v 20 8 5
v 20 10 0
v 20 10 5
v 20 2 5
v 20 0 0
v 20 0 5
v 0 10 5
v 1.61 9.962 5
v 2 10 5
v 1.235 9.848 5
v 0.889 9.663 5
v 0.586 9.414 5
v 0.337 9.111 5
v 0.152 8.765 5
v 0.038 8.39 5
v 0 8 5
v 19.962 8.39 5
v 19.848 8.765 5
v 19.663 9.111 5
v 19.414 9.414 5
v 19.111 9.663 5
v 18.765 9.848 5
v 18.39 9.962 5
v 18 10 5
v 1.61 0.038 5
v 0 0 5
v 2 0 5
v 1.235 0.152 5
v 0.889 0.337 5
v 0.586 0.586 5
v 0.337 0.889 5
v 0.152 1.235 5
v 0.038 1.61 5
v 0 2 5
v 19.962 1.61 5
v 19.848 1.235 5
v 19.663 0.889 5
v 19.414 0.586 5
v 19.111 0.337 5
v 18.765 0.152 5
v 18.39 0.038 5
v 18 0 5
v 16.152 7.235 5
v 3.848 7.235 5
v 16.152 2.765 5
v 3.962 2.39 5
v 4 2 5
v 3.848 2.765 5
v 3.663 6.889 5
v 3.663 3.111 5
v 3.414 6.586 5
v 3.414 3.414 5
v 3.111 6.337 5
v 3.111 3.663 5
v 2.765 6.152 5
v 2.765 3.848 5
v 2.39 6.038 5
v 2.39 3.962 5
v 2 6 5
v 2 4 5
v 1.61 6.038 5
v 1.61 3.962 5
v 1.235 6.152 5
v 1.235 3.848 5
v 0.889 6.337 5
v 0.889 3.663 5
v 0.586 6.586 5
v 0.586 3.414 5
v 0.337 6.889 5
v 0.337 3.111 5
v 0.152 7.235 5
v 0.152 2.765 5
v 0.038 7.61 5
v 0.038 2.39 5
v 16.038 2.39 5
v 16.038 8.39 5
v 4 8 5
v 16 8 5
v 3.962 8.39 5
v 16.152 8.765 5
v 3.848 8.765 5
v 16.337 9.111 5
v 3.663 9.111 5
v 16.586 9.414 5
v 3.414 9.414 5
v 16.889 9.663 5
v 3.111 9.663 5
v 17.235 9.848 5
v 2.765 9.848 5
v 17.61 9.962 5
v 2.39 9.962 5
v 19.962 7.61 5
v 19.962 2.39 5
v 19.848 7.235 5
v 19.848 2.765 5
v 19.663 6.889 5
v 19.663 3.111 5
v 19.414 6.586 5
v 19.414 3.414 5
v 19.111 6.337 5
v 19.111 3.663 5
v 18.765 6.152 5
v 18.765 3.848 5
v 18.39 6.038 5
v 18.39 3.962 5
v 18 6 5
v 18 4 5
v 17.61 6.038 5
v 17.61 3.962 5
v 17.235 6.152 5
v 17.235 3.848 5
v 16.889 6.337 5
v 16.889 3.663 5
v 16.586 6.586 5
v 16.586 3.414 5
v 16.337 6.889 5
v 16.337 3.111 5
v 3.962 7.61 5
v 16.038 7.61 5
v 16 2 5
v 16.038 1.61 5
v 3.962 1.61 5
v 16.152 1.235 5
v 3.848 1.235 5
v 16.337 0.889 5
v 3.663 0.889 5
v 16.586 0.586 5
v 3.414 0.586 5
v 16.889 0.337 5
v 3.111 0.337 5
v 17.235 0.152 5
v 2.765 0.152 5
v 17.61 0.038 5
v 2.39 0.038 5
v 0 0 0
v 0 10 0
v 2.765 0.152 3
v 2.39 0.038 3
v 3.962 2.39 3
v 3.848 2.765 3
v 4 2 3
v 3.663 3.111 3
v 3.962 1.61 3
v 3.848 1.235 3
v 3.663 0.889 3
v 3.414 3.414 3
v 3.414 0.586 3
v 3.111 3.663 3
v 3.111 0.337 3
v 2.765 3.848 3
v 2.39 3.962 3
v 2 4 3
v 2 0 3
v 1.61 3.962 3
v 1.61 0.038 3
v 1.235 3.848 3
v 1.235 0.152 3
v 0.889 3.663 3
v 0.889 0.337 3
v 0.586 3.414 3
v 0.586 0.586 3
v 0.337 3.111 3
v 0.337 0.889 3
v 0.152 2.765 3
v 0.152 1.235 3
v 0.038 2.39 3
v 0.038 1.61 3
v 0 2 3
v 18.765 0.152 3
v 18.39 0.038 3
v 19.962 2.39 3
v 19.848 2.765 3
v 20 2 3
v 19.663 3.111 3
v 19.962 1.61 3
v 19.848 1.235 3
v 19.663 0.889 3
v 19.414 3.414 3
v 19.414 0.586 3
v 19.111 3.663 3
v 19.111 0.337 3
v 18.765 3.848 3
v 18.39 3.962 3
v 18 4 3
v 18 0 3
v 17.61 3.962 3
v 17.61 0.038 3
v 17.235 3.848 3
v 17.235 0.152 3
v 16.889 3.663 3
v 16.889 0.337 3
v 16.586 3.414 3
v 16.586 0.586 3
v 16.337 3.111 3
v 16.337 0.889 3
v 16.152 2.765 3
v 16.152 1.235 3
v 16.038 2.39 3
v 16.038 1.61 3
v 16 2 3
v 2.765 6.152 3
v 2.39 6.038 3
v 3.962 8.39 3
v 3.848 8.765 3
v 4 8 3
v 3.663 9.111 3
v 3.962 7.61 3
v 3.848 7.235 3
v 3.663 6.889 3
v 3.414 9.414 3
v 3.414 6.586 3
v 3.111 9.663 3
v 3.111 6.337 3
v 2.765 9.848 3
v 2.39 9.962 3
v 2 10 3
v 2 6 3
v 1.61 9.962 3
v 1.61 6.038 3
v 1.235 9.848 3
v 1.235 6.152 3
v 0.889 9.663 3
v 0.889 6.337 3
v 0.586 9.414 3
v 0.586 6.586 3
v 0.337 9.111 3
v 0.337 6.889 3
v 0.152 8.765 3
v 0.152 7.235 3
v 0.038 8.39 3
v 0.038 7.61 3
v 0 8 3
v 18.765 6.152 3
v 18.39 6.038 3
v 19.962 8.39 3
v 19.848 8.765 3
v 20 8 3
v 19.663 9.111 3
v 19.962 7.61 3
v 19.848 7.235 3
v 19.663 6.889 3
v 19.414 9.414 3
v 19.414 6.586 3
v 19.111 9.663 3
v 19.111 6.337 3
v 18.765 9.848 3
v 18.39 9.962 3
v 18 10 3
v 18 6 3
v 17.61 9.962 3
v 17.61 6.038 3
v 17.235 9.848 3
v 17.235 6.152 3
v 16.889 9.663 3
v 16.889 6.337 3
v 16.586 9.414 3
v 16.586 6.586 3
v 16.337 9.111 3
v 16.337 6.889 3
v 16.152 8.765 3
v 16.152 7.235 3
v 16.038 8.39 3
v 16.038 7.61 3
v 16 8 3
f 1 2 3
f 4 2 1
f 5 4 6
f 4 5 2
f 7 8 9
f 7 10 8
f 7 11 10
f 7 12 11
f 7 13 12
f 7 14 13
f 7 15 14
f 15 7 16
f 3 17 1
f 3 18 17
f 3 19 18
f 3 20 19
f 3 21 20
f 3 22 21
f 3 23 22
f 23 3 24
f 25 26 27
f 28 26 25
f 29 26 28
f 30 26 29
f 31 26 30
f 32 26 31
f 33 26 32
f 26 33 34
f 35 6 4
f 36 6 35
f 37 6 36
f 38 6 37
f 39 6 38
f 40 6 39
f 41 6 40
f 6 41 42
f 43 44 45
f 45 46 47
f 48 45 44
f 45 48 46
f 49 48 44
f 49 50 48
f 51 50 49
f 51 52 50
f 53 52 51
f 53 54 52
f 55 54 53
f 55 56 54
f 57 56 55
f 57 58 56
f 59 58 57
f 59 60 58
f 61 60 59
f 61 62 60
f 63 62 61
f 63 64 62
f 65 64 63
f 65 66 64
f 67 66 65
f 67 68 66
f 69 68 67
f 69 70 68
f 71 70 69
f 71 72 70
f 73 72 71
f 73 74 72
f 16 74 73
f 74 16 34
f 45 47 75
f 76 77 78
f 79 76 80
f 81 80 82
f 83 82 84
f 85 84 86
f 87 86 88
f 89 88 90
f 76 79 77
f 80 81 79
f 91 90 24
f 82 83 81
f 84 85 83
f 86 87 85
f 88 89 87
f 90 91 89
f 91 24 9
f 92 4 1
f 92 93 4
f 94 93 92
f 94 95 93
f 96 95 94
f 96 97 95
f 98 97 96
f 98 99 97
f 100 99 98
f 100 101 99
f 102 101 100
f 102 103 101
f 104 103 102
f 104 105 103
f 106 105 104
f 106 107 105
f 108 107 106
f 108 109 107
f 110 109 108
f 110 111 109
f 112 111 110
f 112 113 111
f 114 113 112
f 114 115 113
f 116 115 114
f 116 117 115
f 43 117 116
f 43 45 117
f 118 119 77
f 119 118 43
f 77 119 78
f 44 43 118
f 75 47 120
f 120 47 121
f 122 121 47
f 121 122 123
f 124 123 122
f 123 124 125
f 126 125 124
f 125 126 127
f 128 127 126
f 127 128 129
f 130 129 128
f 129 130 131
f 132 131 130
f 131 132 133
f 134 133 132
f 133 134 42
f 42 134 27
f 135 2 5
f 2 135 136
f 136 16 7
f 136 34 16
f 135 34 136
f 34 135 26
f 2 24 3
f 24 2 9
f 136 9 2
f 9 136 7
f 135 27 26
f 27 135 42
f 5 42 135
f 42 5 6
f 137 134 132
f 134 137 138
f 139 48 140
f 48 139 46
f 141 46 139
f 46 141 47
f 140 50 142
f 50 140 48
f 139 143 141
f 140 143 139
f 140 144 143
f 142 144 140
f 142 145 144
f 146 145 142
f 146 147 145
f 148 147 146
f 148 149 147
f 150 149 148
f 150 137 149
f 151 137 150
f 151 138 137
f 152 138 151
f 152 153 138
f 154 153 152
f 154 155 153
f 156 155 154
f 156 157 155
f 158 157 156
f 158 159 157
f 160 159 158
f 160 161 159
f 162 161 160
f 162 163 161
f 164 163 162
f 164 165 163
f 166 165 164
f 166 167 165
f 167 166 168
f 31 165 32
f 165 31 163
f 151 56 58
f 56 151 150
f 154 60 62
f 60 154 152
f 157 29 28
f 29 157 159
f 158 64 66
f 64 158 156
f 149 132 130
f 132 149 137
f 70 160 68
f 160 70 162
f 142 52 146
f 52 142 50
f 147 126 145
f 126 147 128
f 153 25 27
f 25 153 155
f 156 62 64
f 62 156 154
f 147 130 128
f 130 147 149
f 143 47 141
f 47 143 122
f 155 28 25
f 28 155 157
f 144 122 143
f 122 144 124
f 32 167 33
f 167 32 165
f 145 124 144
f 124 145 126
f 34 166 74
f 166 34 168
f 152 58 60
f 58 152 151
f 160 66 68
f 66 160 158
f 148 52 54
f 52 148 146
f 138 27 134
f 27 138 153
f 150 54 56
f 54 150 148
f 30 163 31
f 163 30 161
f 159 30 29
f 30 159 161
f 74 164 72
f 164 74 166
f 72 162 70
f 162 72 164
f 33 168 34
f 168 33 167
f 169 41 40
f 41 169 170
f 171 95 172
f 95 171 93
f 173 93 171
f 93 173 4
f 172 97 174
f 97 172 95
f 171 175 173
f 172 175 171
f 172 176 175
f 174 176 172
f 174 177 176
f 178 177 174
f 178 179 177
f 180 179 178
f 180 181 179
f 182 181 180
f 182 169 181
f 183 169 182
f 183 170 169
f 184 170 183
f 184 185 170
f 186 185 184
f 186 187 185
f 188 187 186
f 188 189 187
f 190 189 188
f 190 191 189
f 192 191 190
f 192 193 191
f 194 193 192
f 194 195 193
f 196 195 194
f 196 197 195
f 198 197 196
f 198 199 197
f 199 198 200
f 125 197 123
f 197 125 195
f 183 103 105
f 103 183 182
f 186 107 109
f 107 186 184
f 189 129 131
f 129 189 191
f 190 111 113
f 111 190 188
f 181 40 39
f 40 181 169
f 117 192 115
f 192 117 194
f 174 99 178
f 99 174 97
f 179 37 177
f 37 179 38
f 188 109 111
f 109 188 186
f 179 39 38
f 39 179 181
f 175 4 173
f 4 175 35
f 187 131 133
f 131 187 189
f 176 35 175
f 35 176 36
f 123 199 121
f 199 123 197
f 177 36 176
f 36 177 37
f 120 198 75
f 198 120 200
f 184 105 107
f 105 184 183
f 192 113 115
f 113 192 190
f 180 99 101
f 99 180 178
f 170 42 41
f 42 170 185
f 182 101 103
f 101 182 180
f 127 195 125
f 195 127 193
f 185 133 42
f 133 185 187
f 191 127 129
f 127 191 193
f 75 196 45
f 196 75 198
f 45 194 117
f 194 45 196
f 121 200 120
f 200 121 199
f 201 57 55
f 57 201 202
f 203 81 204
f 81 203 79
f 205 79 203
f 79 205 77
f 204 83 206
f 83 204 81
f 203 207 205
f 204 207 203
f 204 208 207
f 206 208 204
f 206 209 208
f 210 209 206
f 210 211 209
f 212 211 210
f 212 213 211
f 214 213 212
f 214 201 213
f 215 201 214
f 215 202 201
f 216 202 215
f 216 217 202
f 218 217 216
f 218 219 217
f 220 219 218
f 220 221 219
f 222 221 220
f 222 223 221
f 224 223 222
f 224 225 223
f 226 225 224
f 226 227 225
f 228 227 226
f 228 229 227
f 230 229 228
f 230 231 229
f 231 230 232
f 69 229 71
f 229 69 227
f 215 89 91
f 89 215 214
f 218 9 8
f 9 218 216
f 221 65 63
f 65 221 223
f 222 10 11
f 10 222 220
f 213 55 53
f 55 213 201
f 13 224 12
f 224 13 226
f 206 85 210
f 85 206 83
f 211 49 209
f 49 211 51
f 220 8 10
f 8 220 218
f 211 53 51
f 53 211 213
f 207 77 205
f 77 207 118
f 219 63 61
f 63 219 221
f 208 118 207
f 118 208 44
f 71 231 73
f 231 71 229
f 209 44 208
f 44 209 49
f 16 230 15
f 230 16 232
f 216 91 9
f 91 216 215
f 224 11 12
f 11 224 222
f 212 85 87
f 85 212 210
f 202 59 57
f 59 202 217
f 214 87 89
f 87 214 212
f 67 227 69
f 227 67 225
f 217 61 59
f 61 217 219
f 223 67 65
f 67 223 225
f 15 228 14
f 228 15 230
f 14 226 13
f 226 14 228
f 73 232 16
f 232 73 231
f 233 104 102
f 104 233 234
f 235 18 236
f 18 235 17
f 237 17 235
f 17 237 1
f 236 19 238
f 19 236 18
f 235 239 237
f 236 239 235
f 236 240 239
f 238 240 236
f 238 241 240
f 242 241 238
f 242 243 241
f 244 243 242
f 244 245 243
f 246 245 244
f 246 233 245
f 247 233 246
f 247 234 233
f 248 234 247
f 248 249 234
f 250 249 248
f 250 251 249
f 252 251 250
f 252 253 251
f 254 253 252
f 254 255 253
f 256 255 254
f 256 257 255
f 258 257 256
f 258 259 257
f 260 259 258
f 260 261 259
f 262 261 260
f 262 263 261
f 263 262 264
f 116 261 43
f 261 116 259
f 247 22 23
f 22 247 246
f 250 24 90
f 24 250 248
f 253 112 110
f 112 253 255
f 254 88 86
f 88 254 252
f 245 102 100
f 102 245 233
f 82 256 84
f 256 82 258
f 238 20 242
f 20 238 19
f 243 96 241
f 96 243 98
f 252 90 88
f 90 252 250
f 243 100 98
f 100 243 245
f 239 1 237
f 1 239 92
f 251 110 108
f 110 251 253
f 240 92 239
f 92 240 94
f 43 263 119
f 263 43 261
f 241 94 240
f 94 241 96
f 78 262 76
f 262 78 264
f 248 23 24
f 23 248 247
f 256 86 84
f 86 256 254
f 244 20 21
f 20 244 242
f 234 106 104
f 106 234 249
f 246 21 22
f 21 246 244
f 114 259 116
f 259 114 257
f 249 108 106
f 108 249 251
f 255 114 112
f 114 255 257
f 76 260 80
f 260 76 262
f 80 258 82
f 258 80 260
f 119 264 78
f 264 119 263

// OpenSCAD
module corner_piece(width, depth, height, radius) {
  difference() {
    cube([width, depth, height]);
    translate([radius, radius, height - radius])
    cylinder(h = radius, r = radius, $fn = 32);
    translate([width - radius, radius, height - radius])
    cylinder(h = radius, r = radius, $fn = 32);
    translate([radius, depth - radius, height - radius])
    cylinder(h = radius, r = radius, $fn = 32);
    translate([width - radius, depth - radius, height - radius])
    cylinder(h = radius, r = radius, $fn = 32);
  }
}

corner_piece(width = 20, depth = 10, height = 5, radius = 2);
